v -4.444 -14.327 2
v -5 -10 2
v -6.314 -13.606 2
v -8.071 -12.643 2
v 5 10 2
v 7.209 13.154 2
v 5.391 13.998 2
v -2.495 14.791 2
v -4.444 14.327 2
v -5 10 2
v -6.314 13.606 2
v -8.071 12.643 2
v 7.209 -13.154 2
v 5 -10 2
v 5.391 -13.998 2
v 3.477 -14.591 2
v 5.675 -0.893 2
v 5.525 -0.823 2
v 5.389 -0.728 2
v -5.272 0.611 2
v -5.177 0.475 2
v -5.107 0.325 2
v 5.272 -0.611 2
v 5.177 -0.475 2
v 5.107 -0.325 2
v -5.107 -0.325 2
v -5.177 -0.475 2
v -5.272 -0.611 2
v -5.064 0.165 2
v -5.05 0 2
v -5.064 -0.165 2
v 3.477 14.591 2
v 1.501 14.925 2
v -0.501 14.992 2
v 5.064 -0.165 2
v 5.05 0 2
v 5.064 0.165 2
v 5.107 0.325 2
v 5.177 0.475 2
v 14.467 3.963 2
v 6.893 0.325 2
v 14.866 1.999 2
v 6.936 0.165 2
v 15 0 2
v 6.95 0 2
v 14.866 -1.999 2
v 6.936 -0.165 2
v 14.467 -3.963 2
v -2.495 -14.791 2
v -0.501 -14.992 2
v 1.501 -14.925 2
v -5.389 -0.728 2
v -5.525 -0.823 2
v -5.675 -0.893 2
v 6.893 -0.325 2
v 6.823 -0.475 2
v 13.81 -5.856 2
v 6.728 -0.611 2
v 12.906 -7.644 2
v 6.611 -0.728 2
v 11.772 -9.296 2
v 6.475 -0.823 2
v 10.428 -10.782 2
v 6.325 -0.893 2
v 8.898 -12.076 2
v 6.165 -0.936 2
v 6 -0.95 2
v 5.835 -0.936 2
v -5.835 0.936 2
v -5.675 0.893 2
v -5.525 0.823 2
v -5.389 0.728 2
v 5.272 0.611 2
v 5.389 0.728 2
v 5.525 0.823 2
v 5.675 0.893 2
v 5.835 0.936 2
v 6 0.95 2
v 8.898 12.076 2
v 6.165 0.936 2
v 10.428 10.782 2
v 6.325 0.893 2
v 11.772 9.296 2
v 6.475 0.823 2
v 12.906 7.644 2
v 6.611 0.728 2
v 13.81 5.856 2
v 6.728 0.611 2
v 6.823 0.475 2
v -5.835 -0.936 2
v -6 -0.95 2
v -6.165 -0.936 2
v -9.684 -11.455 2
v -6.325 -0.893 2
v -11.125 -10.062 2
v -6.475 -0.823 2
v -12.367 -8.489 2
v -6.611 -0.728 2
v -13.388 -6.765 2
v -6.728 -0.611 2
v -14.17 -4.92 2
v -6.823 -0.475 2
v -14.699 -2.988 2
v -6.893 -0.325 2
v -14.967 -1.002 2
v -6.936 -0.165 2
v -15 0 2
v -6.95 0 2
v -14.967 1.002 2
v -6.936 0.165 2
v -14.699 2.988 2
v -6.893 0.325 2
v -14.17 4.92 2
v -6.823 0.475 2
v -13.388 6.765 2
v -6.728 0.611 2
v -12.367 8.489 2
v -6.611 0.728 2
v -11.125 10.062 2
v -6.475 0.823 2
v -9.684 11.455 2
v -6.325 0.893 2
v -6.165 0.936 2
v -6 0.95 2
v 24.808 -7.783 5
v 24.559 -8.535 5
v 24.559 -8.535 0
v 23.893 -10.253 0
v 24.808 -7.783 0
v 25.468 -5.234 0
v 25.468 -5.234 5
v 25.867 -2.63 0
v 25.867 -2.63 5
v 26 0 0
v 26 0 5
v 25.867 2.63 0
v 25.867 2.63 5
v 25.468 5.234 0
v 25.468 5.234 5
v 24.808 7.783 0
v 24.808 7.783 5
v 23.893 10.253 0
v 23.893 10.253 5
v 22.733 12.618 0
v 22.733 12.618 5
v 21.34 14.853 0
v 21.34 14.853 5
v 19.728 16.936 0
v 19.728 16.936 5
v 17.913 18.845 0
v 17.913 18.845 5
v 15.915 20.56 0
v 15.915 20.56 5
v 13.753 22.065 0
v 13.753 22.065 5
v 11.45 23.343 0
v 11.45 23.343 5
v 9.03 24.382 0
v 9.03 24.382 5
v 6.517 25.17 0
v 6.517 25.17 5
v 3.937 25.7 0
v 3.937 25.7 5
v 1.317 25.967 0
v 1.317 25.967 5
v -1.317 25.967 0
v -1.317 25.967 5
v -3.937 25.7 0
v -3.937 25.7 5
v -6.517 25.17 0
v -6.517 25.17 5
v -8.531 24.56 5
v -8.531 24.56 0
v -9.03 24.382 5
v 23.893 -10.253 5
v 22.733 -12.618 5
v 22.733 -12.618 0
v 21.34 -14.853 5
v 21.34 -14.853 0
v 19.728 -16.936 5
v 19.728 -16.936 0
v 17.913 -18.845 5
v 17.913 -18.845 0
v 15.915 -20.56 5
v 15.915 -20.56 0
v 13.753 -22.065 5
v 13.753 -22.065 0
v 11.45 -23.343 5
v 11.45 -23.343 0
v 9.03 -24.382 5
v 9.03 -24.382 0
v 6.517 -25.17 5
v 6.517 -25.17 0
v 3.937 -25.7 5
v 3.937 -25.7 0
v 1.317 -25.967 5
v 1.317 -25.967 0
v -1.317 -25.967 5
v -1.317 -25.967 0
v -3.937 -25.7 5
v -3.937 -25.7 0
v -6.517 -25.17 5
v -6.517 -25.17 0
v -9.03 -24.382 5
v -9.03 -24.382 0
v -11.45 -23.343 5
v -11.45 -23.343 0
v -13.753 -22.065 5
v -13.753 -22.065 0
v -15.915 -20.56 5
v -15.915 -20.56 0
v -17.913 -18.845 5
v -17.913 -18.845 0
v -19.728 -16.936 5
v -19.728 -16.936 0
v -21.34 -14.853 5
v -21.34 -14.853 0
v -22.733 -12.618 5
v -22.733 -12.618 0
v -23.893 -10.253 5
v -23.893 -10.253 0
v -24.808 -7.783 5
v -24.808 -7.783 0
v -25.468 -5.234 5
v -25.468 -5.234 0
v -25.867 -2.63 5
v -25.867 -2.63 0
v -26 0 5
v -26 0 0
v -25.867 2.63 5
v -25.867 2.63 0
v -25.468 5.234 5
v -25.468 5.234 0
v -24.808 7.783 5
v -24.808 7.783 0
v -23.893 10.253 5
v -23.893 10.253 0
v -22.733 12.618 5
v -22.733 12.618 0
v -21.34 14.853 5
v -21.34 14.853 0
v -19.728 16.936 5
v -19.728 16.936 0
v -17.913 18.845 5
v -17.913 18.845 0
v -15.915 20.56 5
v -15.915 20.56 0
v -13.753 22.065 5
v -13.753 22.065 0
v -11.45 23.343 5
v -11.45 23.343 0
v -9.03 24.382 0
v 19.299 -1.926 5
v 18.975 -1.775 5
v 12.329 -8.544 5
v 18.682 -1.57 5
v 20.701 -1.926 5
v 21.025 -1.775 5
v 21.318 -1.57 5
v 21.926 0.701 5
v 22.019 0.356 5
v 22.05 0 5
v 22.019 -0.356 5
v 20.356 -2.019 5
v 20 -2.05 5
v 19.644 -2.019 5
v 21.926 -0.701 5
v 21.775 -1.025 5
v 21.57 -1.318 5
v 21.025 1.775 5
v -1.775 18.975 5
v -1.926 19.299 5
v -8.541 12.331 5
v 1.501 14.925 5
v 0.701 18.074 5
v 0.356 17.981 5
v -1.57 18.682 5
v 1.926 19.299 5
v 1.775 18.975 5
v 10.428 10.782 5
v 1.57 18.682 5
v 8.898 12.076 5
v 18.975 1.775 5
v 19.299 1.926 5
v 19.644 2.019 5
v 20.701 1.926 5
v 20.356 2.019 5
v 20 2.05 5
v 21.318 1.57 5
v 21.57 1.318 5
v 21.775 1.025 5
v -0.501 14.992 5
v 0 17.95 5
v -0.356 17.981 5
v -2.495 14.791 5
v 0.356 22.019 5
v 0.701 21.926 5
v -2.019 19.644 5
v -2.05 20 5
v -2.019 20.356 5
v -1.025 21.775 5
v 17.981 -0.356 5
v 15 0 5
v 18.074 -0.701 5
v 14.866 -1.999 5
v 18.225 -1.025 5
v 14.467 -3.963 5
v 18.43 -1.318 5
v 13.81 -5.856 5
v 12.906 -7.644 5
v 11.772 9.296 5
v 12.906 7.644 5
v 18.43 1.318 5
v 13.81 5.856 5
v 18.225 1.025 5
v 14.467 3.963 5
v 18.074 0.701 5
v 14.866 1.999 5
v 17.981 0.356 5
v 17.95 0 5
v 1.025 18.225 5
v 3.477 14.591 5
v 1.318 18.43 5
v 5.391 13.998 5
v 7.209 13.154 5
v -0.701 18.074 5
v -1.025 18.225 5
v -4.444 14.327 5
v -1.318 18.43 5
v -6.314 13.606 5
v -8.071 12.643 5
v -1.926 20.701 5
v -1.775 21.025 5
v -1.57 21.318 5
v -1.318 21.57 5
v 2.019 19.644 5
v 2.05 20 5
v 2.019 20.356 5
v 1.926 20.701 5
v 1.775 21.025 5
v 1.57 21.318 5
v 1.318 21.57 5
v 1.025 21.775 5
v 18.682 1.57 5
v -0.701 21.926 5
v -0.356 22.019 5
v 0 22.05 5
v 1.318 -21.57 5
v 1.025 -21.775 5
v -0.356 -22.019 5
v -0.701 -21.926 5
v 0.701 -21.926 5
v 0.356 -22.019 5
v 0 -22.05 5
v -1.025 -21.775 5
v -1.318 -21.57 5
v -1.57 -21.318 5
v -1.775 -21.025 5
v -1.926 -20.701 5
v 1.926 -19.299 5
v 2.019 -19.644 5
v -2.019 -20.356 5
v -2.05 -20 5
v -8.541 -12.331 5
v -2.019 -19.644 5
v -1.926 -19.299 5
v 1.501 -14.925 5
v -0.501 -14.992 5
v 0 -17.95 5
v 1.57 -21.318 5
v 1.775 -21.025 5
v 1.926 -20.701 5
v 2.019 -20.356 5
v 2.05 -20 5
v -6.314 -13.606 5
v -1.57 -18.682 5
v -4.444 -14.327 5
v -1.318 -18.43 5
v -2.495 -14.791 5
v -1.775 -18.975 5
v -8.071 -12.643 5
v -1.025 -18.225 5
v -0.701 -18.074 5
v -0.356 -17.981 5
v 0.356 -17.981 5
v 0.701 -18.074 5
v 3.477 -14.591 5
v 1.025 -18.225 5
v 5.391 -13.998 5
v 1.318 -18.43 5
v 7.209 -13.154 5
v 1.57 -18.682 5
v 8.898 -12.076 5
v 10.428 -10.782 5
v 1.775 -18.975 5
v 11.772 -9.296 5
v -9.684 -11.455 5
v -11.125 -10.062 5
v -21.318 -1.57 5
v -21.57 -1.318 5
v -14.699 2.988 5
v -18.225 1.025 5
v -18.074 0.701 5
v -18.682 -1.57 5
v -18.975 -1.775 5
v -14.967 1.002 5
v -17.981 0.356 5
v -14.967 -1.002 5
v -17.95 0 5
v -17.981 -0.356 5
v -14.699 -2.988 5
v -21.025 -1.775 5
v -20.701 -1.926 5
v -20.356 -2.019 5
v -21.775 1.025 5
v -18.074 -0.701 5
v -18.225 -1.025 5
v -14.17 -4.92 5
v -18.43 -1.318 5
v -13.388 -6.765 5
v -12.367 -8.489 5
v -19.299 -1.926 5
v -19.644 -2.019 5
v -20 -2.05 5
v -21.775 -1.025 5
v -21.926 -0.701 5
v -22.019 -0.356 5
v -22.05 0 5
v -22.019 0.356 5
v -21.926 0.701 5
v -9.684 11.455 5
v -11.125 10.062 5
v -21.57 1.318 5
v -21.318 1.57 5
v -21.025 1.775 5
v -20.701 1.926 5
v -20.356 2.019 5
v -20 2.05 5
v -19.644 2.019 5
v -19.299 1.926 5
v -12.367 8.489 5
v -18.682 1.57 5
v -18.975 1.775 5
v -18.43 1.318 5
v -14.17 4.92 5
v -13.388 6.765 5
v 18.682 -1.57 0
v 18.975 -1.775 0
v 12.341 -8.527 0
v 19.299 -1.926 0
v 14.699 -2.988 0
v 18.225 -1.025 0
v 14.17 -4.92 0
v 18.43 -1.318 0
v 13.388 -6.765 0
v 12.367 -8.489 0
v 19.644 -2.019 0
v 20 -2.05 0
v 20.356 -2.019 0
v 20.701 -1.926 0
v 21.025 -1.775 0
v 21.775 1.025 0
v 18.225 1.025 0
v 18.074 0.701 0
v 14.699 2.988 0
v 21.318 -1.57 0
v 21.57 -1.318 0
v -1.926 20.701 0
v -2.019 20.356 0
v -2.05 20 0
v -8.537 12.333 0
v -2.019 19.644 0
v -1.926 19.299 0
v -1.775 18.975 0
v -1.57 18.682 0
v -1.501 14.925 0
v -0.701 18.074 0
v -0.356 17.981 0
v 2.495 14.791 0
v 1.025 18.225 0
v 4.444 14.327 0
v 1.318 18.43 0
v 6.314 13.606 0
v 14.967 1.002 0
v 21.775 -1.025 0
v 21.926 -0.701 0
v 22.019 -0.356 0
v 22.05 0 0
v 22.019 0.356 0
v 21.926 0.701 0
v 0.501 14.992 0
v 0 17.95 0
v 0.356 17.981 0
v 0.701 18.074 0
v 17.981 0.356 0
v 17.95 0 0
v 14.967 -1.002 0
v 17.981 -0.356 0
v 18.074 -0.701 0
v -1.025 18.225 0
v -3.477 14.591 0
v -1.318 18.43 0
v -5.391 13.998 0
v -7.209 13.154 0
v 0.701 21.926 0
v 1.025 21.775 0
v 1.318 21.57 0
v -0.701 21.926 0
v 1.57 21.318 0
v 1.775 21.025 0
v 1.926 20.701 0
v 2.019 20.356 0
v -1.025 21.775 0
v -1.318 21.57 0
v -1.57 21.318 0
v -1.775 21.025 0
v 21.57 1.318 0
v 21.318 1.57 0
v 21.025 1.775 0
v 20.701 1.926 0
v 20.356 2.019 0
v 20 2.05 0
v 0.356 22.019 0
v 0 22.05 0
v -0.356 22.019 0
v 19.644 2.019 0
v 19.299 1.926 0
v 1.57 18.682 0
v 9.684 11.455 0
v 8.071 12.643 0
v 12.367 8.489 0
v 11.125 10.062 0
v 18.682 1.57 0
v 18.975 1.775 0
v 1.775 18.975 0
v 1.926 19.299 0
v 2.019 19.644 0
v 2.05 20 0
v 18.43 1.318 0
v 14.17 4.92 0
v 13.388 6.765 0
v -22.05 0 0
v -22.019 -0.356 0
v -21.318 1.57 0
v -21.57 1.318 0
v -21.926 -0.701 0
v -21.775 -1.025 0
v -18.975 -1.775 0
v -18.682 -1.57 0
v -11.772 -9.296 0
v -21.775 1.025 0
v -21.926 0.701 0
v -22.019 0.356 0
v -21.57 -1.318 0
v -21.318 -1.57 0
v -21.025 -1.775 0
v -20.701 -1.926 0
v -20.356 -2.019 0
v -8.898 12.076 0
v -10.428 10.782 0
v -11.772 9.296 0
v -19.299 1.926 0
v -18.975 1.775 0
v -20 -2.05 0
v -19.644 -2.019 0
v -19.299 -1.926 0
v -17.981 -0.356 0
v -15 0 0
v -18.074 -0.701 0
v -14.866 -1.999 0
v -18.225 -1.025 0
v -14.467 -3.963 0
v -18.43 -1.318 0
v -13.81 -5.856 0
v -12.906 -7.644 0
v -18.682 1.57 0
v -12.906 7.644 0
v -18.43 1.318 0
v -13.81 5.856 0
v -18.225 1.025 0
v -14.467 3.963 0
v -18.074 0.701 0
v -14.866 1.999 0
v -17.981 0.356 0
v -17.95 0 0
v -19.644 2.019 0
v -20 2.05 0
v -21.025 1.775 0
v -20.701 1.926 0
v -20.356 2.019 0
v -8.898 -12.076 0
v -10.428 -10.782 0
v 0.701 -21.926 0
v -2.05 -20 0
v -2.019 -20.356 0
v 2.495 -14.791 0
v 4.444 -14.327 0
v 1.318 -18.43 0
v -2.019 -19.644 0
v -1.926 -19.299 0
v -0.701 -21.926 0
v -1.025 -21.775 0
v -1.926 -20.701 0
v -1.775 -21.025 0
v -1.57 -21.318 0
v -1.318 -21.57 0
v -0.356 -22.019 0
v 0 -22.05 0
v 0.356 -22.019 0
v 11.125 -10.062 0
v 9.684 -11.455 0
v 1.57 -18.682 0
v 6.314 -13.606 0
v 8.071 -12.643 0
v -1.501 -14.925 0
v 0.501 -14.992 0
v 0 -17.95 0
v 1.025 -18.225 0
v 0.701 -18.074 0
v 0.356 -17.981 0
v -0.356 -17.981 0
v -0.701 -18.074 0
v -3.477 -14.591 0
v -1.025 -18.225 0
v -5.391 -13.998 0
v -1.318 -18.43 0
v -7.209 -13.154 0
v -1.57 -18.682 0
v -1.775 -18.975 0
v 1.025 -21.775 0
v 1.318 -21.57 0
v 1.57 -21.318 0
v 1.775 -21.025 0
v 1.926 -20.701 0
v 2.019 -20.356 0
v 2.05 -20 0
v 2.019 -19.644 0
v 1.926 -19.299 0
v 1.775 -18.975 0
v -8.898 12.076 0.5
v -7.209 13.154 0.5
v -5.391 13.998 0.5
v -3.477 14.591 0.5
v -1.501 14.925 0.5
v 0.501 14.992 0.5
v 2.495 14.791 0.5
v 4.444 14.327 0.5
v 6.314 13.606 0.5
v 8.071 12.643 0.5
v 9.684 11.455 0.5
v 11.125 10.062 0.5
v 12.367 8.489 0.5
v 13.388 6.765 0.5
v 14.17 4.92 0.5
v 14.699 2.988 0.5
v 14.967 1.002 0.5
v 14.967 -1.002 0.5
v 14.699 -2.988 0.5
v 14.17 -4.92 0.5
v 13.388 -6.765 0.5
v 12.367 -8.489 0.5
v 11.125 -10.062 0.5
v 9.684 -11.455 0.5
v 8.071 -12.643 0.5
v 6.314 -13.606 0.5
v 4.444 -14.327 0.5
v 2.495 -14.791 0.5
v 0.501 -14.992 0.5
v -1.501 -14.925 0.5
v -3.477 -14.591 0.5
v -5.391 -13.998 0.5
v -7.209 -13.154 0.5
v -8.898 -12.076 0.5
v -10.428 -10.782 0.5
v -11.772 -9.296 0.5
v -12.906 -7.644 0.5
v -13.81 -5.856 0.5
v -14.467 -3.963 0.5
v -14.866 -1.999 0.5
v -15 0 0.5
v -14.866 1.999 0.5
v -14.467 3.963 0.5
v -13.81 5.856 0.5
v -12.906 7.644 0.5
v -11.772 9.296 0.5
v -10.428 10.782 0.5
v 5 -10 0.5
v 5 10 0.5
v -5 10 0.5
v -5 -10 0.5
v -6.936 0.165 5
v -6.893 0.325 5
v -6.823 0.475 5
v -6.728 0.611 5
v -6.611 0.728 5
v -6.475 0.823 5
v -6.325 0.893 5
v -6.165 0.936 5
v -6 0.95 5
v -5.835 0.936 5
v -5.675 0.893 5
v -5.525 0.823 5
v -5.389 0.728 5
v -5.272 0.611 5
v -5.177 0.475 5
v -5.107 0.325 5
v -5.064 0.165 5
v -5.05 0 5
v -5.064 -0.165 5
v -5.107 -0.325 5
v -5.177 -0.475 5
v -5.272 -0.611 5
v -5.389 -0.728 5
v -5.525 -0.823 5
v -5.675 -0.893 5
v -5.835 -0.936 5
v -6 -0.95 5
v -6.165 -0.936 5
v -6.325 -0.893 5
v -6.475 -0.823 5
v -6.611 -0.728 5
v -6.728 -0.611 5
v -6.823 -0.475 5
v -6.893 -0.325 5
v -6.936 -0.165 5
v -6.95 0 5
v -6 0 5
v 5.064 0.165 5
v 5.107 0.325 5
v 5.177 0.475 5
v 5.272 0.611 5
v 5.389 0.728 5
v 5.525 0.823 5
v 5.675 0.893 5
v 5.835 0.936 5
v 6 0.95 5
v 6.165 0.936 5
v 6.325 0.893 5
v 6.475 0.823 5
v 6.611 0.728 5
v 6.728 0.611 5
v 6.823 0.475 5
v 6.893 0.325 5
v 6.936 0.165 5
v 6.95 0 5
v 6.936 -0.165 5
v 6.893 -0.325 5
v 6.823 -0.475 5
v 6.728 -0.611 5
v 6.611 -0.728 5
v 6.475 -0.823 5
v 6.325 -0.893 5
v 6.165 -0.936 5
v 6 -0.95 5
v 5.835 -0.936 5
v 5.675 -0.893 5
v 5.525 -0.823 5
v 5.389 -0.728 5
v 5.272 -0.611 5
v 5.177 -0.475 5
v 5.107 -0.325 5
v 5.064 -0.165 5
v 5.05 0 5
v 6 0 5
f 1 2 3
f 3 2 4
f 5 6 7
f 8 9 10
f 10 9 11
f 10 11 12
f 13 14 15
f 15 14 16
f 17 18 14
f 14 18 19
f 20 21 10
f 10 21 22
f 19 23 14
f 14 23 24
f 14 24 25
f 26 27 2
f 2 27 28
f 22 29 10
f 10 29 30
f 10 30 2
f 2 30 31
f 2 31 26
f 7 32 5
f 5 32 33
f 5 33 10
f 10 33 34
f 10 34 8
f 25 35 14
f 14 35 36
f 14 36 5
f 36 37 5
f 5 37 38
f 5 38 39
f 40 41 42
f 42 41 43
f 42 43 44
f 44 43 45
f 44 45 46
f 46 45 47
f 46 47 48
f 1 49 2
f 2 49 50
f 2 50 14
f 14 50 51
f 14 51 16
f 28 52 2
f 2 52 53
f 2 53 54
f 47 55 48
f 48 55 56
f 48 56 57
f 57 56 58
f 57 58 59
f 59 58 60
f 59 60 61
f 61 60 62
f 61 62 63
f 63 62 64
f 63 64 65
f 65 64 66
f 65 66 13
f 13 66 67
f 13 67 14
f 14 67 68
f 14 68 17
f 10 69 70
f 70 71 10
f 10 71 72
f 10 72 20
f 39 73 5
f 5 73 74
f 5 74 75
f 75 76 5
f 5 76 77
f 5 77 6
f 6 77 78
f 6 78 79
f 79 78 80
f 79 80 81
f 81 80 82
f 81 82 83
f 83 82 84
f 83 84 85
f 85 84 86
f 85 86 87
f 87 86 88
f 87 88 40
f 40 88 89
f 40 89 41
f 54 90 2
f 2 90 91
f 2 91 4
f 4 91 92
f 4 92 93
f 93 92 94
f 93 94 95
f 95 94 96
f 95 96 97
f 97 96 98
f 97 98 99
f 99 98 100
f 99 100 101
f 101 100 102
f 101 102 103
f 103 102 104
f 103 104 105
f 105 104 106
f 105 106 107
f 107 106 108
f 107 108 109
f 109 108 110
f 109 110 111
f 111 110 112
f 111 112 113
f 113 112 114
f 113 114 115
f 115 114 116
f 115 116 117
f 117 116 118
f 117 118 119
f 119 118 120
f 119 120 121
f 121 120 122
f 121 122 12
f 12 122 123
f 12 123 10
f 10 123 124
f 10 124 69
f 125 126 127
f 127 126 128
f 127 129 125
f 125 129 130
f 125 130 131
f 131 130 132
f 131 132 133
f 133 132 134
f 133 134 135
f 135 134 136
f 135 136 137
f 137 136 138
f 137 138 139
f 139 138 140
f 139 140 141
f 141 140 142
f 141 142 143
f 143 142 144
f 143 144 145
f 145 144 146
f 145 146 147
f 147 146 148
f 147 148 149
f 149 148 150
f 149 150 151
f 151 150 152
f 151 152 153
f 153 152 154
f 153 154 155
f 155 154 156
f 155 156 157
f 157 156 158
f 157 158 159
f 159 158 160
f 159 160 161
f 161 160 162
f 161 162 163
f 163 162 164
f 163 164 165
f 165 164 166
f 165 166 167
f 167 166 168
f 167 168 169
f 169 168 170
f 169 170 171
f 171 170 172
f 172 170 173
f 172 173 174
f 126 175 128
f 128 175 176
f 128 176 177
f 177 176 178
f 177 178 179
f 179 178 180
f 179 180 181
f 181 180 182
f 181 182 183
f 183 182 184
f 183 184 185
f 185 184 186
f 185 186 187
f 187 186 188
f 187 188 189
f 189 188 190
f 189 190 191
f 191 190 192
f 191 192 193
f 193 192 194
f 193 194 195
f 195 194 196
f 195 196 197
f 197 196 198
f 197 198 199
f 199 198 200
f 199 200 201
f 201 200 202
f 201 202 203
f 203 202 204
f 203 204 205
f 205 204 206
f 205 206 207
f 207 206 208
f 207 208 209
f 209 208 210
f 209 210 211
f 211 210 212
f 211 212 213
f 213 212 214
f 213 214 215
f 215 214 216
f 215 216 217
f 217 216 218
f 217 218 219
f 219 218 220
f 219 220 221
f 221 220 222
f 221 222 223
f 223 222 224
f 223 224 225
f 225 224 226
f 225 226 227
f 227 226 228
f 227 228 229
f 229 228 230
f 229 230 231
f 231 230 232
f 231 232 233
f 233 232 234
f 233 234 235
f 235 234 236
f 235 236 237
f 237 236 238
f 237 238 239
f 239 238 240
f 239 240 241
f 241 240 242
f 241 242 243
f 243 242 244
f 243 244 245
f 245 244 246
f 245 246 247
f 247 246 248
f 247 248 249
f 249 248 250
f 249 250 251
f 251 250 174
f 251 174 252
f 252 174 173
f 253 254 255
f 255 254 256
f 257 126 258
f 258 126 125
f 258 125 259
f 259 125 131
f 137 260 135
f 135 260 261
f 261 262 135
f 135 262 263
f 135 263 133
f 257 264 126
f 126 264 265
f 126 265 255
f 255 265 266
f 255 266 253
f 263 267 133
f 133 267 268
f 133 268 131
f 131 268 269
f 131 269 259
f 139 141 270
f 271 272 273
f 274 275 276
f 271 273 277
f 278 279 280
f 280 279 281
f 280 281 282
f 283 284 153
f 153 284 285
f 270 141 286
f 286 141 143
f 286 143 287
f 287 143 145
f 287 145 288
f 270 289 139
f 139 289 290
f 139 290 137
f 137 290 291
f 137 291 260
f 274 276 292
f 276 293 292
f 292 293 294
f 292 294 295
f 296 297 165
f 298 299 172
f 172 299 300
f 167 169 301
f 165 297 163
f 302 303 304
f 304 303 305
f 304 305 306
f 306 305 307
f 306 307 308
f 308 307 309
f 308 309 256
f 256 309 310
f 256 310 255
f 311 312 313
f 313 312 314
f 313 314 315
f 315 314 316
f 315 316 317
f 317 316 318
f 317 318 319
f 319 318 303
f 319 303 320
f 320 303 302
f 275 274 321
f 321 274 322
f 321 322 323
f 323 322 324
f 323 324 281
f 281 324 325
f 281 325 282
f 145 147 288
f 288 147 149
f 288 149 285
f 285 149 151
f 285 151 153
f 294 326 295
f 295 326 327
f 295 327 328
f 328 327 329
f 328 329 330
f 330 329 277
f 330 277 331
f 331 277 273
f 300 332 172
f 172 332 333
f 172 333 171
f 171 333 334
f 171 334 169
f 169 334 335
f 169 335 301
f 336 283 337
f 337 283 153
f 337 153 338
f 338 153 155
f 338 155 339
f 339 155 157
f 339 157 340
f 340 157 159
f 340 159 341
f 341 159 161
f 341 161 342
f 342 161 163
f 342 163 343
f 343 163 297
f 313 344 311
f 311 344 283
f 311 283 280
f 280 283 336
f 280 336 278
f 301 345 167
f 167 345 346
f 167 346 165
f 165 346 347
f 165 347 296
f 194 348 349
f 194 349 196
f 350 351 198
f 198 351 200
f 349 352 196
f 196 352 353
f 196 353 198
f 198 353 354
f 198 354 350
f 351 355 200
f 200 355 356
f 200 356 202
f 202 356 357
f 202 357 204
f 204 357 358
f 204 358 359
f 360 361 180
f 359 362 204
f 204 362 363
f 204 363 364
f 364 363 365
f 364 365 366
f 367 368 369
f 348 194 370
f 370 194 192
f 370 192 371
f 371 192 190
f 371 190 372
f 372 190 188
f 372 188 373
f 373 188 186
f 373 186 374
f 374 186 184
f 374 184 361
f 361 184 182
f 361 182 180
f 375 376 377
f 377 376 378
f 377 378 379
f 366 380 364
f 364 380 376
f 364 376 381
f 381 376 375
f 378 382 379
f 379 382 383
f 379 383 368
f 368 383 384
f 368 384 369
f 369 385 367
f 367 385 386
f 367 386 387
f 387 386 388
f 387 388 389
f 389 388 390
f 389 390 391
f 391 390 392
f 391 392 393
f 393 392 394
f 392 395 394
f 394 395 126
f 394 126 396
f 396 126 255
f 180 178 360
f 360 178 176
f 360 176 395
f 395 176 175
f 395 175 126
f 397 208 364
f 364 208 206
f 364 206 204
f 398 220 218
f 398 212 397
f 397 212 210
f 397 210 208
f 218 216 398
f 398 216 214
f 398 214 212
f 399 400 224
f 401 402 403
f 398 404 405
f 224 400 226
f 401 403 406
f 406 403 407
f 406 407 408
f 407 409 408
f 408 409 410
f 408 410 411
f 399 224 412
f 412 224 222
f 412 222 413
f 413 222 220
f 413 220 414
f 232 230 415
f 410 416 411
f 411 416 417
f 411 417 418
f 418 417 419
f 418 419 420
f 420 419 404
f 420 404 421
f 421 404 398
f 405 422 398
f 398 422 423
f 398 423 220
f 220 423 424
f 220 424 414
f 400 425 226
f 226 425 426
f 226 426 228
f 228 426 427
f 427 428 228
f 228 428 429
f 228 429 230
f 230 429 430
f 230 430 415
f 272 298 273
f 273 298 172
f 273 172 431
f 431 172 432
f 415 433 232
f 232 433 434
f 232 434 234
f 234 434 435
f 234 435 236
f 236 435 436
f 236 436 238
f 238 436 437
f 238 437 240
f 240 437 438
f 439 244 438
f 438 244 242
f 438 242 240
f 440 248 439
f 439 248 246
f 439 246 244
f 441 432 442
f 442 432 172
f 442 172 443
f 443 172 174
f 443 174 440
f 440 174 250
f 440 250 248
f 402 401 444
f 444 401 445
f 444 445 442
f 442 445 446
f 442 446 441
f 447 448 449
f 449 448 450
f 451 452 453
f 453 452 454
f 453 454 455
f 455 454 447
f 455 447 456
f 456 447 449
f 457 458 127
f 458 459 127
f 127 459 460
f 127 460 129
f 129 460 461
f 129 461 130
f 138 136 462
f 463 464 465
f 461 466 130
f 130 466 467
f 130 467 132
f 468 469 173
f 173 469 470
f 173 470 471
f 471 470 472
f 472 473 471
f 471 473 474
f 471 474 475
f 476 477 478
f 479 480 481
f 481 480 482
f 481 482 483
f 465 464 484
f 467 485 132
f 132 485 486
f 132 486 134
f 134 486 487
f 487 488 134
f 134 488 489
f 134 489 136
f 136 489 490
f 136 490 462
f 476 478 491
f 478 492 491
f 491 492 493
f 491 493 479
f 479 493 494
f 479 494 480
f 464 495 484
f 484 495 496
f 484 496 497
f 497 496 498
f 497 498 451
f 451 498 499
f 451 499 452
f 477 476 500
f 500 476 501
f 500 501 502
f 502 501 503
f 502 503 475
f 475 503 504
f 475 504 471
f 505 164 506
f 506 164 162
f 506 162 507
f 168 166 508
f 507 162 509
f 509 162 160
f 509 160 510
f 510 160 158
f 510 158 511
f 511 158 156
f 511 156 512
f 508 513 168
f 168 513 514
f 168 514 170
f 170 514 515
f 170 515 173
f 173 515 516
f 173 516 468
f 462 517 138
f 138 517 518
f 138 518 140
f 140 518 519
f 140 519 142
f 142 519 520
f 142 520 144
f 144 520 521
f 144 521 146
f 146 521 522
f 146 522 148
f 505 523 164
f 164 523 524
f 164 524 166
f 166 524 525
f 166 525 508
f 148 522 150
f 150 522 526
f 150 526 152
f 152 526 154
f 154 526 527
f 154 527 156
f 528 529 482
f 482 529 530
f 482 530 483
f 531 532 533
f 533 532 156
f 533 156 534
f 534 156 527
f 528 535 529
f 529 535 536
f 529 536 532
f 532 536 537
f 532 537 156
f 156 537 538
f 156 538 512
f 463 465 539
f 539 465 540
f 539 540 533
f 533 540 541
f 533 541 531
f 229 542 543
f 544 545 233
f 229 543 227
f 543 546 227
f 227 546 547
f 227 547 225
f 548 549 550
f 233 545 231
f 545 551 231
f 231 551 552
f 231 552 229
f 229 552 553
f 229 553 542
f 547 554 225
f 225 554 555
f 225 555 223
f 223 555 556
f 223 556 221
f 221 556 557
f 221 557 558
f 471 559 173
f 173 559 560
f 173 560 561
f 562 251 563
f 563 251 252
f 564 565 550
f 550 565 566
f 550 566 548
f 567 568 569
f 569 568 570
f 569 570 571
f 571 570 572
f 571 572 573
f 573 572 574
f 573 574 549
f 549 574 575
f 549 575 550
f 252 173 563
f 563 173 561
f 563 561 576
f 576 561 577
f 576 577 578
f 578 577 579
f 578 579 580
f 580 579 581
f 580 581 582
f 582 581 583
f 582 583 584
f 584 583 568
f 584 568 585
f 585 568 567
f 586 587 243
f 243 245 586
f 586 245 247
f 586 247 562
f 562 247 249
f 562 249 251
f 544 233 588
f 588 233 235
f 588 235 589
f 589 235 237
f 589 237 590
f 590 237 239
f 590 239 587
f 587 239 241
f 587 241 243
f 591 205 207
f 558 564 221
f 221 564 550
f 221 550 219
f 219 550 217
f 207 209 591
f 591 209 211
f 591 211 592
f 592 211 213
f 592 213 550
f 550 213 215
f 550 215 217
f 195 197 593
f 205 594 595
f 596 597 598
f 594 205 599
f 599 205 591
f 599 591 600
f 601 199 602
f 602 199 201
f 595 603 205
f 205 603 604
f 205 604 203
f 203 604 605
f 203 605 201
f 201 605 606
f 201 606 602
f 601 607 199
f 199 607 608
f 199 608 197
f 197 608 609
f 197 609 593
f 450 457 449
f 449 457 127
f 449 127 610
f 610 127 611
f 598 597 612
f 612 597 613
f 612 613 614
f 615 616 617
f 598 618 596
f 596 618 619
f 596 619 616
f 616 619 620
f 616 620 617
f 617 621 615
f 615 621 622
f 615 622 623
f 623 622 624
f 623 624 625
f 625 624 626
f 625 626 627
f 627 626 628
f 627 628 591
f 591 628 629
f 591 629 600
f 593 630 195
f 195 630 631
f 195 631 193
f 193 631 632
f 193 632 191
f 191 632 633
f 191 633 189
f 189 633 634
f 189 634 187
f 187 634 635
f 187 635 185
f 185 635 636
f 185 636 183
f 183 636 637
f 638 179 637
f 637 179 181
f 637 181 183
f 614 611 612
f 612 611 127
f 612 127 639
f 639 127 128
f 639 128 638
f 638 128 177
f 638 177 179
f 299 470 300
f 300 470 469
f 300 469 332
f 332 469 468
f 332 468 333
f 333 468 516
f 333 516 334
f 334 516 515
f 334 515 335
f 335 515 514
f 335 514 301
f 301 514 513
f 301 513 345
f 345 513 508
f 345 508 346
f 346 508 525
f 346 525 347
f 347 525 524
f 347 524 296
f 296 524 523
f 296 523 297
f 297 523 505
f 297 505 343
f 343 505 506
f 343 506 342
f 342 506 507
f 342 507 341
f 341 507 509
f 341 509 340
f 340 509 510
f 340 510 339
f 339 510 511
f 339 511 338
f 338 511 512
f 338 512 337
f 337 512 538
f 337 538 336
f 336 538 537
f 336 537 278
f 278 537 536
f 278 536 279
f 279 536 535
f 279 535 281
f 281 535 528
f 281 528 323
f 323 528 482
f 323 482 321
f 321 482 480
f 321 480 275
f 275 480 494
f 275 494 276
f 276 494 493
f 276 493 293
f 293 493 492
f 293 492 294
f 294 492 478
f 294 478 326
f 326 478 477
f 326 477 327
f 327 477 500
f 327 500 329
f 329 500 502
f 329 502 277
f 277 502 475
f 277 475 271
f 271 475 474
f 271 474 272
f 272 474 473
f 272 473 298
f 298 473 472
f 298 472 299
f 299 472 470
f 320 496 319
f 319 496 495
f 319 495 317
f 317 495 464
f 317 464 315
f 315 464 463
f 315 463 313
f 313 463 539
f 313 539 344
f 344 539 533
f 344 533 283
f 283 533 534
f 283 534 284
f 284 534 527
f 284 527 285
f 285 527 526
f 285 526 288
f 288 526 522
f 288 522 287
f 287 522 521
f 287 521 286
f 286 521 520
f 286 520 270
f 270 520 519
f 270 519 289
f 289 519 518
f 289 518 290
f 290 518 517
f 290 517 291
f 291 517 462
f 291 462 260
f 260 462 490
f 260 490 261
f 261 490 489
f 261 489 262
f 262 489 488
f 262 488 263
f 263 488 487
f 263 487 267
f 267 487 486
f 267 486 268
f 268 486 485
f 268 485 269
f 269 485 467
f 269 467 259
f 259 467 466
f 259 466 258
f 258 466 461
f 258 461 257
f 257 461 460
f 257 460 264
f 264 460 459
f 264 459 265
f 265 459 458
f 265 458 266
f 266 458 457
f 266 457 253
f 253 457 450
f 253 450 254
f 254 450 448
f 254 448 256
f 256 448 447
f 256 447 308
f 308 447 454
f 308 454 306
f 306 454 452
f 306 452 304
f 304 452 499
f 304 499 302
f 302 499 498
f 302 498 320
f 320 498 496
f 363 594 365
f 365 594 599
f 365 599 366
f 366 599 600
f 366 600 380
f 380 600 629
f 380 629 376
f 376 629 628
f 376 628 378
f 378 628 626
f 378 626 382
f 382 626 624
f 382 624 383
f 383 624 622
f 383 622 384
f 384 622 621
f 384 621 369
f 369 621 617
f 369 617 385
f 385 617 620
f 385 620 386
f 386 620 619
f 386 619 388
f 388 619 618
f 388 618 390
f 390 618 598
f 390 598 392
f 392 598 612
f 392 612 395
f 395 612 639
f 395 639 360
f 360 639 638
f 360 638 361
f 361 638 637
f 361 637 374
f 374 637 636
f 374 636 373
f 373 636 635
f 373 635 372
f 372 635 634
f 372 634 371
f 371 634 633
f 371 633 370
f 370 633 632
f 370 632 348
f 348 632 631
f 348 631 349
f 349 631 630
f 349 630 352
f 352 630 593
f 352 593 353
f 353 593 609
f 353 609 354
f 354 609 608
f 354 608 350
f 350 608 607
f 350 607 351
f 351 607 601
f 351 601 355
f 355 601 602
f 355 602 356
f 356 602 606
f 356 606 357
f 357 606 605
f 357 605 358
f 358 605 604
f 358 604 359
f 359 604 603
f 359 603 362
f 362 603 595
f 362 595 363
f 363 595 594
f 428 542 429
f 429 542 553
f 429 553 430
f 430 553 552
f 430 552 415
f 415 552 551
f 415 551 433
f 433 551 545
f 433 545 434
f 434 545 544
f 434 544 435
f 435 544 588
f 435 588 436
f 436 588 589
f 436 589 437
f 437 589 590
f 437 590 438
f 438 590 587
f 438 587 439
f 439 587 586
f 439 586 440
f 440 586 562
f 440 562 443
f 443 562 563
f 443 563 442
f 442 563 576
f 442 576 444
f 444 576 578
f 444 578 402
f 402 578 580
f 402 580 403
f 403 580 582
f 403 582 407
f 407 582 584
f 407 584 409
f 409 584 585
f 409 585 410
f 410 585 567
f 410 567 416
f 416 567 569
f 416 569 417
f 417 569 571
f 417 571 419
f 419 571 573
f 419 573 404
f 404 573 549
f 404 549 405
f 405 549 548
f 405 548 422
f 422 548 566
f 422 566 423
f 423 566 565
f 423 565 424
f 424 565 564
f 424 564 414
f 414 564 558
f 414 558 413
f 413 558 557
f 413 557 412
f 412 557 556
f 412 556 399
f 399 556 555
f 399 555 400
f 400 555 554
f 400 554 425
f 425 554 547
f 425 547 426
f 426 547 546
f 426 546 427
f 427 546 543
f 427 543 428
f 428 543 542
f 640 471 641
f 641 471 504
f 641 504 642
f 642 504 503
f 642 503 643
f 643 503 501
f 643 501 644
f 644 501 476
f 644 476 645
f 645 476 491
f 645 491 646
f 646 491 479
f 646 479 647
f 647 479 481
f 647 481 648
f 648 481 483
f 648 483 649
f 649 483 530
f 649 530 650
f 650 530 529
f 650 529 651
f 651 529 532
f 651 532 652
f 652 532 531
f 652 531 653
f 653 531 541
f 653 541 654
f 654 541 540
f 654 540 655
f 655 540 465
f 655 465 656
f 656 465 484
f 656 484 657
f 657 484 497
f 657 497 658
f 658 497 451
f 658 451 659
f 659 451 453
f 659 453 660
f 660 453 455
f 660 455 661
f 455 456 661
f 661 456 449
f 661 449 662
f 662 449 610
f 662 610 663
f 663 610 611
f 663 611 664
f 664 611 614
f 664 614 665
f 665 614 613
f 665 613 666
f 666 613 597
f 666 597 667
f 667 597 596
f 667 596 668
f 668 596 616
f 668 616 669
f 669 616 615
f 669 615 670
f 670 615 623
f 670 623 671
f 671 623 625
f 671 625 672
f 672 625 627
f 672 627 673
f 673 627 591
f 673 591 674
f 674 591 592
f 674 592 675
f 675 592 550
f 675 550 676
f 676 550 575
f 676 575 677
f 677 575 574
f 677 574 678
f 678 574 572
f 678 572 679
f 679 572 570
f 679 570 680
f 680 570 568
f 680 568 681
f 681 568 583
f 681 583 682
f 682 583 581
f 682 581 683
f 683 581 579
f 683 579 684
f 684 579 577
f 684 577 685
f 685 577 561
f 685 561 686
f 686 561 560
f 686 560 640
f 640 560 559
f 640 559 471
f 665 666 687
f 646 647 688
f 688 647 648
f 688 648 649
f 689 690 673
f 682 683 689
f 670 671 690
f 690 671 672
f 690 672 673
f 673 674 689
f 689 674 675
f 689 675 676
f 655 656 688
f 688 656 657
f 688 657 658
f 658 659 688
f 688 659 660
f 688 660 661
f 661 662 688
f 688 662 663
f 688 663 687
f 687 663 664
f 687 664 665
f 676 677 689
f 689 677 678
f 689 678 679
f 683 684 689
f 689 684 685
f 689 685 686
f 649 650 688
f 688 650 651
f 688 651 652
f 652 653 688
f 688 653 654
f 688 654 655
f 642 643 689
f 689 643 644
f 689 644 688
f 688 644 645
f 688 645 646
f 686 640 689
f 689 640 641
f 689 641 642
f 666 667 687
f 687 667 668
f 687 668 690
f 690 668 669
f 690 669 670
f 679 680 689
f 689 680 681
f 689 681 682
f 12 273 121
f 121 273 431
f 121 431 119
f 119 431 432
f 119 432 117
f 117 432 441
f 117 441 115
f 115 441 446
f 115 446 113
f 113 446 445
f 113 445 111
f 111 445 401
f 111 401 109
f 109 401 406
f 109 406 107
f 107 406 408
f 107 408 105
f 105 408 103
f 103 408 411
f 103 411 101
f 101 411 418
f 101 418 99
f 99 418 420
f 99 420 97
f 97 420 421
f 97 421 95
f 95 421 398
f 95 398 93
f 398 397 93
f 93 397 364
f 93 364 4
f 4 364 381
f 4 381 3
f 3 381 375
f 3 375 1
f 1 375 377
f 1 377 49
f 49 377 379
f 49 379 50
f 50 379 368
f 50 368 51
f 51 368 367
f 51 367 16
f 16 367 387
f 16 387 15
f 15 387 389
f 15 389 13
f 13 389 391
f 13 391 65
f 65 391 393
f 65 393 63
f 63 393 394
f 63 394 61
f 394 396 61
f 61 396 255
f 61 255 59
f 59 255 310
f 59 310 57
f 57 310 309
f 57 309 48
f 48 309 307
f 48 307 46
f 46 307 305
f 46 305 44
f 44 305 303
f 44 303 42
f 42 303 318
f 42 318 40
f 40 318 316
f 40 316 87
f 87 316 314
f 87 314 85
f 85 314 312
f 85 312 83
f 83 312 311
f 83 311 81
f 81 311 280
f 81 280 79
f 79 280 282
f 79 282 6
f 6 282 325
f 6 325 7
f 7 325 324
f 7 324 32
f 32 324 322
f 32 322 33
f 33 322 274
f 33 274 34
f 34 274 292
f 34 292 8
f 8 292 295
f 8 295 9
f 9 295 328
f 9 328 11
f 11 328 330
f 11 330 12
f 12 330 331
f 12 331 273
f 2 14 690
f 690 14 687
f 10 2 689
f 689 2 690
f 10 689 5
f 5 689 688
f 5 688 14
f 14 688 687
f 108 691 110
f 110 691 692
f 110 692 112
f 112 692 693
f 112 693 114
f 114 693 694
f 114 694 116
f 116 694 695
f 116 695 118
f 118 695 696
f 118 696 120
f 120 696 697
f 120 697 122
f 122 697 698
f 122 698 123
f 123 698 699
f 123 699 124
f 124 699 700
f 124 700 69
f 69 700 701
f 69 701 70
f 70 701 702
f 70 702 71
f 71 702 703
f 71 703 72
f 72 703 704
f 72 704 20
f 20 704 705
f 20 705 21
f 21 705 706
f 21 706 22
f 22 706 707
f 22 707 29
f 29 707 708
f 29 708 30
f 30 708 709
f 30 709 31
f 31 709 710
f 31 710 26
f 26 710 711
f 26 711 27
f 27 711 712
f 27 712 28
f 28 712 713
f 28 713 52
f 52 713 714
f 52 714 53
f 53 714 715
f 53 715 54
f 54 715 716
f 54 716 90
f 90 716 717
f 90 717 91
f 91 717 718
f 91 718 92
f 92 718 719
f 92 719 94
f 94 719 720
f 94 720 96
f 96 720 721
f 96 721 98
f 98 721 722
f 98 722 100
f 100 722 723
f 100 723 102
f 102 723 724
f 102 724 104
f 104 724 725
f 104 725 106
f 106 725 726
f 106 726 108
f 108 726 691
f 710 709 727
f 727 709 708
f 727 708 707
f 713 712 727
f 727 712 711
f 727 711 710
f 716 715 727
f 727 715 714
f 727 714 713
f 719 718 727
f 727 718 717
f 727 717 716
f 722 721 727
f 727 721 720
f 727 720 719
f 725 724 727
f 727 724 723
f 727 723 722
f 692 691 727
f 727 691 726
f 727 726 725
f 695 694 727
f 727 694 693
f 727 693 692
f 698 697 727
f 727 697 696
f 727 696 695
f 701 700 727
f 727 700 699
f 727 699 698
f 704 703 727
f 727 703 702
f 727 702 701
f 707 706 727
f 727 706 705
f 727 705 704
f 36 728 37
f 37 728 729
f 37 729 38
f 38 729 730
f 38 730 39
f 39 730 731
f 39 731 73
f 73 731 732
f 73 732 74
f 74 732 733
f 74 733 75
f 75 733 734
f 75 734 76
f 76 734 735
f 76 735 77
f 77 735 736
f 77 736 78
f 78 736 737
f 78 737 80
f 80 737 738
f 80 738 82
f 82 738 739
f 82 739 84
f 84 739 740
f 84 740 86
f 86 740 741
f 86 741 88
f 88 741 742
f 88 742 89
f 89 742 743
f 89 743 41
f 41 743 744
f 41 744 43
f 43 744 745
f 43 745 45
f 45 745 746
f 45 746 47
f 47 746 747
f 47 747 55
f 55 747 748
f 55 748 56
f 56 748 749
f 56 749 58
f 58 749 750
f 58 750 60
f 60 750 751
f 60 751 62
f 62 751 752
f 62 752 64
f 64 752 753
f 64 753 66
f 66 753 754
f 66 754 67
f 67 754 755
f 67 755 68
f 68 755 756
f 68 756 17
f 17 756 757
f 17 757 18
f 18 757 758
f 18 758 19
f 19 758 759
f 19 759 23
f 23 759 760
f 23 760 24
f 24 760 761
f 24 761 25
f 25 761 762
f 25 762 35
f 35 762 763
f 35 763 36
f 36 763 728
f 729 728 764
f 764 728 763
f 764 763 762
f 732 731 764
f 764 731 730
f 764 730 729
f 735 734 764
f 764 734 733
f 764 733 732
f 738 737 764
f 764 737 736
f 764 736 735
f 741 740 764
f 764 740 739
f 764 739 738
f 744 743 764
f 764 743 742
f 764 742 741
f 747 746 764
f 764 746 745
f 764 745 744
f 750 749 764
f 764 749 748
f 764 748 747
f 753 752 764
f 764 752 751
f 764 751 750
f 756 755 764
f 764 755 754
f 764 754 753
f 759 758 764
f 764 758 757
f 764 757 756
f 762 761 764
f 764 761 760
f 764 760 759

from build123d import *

# Parameters (mm, degrees)
SKETCH_1_R               = 26
EXTRUDE_1_DEPTH          = 5
SKETCH_2_R               = 2.05
CUT_EXTRUDE_1_DEPTH      = 38.107950631
PATTERN_CIRCULAR_1_COUNT = 4
SKETCH_3_R               = 15
CUT_EXTRUDE_2_DEPTH      = 0.5
CUT_EXTRUDE_START        = -3
SKETCH_4_R               = 15
CUT_EXTRUDE_3_DEPTH      = 3
SKETCH_5_W               = 10
SKETCH_5_H               = 20
CUT_EXTRUDE_4_DEPTH      = 37.891733491
SKETCH_6_R               = 0.95
EXTRUDE_2_DEPTH          = 3


with BuildPart() as part:
    # 草图1 → 凸台-拉伸1 (new body)
    with BuildSketch(Plane.XY):
        Circle(SKETCH_1_R)
    extrude(amount=EXTRUDE_1_DEPTH)

    # 草图2 → 切除-拉伸1 (cut, through all)
    with BuildSketch(Plane(origin=(0, 0, 0), x_dir=(-1, 0, 0), z_dir=(0, 0, -1))):
        with Locations((0, 20)):
            Circle(SKETCH_2_R)
    cut_extrude_1 = extrude(amount=-CUT_EXTRUDE_1_DEPTH, mode=Mode.SUBTRACT)

    # 阵列(圆周)1: 切除-拉伸1 ×4 about axis
    pattern_circular_1_axis = Axis((0, 0, 0), (0, 0, 1))
    for i in range(1, PATTERN_CIRCULAR_1_COUNT):
        add(cut_extrude_1.rotate(pattern_circular_1_axis, i * 360 / PATTERN_CIRCULAR_1_COUNT), mode=Mode.SUBTRACT)

    # 草图3 → 切除-拉伸2 (cut)
    with BuildSketch(Plane(origin=(0, 0, 0), x_dir=(-1, 0, 0), z_dir=(0, 0, -1))):
        Circle(SKETCH_3_R)
    extrude(amount=-CUT_EXTRUDE_2_DEPTH, mode=Mode.SUBTRACT)

    # 草图4 → 切除-拉伸3 (cut)
    with BuildSketch(Plane.XY.offset(5).offset(CUT_EXTRUDE_START)):
        with Locations(Location((0, 0, 0), (0, 0, 180))):
            Circle(SKETCH_4_R)
    extrude(amount=CUT_EXTRUDE_3_DEPTH, mode=Mode.SUBTRACT)

    # 草图5 → 切除-拉伸4 (cut, through all)
    with BuildSketch(Plane.XY.offset(2)):
        Rectangle(SKETCH_5_W, SKETCH_5_H)
    extrude(amount=-CUT_EXTRUDE_4_DEPTH, mode=Mode.SUBTRACT)

    # 草图6 → 凸台-拉伸2 (add)
    with BuildSketch(Plane.XY.offset(2)):
        with Locations(Location((-6, 0, 0), (0, 0, 180))):
            Circle(SKETCH_6_R)
    extrude_2 = extrude(amount=EXTRUDE_2_DEPTH)

    # 镜向1: 凸台-拉伸2 across plane
    add(extrude_2.mirror(Plane(origin=(0, 0, 0), x_dir=(0, 0, 1), z_dir=(1, 0, 0))))


solid = part.part
